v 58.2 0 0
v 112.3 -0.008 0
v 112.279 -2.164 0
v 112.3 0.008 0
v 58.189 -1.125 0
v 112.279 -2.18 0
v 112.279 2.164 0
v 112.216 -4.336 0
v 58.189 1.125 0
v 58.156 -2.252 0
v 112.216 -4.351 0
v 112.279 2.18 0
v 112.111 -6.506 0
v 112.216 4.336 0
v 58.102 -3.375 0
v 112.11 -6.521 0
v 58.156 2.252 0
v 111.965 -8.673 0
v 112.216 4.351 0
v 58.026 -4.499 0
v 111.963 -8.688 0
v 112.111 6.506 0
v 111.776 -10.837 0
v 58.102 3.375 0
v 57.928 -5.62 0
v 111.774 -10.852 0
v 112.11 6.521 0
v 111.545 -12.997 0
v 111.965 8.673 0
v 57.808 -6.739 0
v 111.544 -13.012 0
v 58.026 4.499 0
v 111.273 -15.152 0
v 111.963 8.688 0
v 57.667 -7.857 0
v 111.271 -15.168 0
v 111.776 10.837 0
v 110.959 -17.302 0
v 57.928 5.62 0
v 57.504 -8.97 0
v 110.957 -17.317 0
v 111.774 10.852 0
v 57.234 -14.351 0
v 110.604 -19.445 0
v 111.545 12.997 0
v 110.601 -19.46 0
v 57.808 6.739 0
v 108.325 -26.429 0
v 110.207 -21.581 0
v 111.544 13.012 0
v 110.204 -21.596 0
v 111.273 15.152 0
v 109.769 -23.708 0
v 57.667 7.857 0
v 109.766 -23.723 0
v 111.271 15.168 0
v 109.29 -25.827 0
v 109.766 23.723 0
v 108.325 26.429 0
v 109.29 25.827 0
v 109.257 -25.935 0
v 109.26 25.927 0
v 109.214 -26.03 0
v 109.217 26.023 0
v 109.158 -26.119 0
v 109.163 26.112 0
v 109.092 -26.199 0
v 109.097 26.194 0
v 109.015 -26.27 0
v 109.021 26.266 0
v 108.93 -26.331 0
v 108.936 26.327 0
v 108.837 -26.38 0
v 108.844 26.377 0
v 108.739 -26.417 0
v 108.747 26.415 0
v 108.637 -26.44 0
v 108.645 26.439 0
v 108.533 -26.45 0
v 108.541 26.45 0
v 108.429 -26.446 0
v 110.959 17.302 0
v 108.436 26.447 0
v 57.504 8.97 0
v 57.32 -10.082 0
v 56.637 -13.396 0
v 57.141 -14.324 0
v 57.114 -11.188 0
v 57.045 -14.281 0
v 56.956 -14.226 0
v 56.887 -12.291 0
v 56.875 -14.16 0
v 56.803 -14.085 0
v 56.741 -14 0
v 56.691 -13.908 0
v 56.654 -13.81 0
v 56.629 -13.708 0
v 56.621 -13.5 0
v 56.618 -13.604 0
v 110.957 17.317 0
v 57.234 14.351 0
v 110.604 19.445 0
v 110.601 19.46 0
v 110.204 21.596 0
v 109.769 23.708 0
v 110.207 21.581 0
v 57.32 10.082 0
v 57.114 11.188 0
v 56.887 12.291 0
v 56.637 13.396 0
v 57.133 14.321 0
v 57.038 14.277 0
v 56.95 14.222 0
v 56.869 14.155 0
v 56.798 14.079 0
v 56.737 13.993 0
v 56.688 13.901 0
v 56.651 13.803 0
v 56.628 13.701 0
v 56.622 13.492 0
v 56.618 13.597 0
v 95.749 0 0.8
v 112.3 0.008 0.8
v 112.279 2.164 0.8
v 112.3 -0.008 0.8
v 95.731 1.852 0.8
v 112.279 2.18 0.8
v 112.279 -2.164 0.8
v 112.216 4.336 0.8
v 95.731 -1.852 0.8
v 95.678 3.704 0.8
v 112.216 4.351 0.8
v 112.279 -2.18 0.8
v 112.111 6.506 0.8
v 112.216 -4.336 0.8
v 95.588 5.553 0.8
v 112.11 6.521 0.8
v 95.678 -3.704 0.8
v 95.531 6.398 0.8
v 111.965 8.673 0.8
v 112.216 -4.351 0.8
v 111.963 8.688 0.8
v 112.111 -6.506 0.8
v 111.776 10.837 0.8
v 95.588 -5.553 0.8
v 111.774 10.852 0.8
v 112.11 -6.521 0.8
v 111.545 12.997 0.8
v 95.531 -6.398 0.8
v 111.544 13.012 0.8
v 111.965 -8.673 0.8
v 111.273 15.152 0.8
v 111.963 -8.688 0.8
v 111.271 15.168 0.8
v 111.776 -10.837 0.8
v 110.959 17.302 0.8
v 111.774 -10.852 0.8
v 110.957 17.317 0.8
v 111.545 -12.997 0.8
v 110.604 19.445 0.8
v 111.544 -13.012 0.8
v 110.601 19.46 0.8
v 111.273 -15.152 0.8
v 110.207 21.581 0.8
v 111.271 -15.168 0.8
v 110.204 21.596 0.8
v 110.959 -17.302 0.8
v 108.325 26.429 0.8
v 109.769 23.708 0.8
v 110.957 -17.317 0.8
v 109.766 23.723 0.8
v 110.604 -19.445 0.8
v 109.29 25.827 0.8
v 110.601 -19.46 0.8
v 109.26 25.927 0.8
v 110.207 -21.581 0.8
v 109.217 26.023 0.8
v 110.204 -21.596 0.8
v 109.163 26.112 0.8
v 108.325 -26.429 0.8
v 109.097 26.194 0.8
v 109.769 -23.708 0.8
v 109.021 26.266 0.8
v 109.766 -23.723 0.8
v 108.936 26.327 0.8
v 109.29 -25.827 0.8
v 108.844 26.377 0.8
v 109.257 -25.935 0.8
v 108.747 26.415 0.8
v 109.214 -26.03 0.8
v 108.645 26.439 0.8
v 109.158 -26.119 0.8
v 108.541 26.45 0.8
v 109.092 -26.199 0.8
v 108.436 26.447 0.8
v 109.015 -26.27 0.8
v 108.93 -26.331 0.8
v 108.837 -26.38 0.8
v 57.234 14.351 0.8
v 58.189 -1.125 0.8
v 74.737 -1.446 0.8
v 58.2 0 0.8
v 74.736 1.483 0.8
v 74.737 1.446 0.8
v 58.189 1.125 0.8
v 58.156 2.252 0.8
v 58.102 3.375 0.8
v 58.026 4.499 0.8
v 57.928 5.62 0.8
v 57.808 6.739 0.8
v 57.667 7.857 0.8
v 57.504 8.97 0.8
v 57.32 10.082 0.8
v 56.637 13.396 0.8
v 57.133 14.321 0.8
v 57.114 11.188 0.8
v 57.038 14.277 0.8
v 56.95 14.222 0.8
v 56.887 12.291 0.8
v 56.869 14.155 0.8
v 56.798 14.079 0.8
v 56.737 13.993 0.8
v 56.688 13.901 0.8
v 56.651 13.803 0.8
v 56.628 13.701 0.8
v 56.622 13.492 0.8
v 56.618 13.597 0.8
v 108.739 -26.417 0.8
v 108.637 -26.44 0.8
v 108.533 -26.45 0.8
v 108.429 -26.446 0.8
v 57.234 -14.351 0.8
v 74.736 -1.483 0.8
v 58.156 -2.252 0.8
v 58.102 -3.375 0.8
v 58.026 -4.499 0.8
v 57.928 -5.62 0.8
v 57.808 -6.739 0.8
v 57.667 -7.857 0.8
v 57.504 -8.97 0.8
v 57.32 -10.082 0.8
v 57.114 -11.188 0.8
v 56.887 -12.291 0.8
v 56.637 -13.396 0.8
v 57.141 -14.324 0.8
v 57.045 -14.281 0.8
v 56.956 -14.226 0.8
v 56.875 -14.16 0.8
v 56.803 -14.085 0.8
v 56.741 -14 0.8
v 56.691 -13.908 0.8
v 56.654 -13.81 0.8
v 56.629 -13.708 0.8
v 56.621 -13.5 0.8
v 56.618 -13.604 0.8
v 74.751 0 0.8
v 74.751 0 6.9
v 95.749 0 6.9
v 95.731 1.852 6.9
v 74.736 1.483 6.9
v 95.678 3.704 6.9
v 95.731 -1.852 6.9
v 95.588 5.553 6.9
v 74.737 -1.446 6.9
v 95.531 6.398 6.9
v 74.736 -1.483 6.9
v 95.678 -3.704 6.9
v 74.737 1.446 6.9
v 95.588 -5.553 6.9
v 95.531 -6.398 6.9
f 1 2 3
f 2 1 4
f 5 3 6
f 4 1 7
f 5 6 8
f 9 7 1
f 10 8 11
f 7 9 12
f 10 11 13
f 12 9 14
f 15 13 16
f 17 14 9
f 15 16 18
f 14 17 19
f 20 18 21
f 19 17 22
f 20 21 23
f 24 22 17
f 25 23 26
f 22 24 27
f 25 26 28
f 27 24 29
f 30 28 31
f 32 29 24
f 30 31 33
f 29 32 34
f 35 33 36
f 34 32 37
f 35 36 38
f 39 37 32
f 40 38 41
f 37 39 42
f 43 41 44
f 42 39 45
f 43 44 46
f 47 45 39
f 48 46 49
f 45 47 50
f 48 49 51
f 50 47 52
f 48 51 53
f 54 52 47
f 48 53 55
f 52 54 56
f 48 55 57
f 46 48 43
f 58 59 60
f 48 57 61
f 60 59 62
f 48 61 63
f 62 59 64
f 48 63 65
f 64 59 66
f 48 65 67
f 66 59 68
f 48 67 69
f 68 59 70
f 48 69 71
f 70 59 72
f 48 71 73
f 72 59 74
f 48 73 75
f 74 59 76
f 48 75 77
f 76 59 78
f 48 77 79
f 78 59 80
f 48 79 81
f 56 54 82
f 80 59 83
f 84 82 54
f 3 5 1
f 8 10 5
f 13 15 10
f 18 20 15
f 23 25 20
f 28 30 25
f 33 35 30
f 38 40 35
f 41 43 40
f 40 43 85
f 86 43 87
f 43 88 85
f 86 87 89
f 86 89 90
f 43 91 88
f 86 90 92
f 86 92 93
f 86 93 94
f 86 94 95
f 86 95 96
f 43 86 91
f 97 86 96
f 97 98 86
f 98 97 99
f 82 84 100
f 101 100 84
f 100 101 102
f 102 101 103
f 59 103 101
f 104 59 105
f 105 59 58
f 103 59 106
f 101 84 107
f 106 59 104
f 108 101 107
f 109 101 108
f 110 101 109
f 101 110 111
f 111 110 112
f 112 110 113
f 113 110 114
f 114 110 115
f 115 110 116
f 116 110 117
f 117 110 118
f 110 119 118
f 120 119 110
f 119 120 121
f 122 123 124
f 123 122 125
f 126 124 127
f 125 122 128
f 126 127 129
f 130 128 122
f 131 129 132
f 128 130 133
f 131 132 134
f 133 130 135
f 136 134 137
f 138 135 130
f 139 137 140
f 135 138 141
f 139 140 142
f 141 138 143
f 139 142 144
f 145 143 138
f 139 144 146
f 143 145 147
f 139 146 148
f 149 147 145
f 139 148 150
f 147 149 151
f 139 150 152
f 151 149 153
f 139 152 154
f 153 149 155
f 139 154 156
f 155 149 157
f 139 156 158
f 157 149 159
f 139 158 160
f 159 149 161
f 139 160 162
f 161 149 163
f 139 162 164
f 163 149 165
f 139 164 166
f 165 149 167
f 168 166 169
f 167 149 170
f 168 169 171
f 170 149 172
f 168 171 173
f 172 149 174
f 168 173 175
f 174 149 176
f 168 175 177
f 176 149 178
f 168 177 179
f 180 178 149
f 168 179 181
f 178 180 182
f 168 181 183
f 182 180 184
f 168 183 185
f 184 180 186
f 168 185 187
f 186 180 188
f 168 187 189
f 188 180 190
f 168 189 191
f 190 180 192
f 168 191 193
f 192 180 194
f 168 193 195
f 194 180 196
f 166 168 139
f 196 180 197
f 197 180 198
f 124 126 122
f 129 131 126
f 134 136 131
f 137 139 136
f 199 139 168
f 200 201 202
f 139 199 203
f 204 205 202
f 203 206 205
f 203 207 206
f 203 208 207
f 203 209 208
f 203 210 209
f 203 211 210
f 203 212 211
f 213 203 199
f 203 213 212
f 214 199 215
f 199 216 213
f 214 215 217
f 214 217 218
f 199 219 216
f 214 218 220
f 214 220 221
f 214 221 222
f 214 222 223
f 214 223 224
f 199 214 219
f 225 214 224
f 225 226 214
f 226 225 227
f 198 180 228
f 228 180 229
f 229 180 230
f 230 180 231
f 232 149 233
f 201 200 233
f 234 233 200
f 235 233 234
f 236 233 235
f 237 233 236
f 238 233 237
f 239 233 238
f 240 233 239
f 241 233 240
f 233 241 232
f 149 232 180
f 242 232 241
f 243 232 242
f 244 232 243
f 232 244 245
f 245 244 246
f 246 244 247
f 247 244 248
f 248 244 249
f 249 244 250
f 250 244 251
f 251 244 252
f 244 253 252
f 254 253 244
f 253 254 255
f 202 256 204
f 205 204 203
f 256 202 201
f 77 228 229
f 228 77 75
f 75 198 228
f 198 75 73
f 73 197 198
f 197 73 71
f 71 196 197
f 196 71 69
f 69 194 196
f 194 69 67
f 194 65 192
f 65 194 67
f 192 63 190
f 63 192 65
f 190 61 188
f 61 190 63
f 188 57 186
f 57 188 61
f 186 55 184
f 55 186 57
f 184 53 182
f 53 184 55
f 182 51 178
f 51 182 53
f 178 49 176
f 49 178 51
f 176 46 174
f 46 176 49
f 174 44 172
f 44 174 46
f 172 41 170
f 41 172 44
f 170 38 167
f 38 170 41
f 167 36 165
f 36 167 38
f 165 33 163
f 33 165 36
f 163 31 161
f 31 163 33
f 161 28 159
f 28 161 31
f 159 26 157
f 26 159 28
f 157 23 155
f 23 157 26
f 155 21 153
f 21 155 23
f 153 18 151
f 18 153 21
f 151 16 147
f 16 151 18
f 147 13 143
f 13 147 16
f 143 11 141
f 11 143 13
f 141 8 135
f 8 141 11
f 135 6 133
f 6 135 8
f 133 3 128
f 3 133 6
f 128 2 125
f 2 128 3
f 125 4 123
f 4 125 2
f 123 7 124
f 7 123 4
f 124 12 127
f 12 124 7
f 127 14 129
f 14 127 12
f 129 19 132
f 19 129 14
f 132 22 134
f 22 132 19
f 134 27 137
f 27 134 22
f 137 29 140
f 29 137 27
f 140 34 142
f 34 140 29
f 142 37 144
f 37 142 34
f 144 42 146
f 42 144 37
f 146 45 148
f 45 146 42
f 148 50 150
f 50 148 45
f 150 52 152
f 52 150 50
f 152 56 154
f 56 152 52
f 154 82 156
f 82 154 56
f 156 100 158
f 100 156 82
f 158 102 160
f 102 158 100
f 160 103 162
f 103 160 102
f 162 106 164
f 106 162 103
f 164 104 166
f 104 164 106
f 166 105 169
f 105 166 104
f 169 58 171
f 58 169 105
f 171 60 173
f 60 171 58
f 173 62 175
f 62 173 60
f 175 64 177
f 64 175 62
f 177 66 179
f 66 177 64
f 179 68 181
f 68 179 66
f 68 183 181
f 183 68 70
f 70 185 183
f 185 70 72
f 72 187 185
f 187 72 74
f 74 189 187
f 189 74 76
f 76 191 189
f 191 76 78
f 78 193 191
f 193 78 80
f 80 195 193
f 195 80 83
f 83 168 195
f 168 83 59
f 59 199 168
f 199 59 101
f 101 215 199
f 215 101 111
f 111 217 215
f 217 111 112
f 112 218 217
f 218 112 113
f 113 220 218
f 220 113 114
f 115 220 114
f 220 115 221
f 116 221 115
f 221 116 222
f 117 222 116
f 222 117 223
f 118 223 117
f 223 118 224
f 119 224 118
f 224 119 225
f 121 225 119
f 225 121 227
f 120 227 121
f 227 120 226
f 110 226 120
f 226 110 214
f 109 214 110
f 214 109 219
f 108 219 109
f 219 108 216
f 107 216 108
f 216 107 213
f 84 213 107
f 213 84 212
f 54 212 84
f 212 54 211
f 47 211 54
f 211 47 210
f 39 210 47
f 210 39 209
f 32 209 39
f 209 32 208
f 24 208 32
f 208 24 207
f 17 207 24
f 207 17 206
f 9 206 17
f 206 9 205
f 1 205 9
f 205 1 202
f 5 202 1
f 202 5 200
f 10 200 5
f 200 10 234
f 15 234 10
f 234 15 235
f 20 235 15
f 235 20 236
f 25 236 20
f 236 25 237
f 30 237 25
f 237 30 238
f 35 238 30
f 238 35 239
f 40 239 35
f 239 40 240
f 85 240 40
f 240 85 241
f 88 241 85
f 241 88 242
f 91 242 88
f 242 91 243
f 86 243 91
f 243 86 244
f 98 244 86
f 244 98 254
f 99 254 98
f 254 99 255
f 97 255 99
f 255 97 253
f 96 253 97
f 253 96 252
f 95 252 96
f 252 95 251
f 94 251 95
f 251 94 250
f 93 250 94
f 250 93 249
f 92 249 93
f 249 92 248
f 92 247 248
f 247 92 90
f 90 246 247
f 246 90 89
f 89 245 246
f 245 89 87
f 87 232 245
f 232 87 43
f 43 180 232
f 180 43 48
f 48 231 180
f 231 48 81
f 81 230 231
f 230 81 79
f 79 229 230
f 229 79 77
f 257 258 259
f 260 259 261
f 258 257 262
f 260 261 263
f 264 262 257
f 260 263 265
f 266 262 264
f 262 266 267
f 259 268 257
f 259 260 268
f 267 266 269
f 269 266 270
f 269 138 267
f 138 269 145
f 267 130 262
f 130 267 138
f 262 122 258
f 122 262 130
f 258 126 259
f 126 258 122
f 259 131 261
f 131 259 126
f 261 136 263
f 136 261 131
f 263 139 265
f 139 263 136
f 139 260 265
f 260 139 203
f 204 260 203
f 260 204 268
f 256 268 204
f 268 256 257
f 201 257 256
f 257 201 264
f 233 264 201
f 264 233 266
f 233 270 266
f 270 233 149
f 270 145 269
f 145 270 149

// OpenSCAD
// Gen-CX — bobbin BASE (bottom flange + hub). Print x12, flange down. Wind 24 AWG x 262 t around
// the hub with the LID glued on (coil_lid.stl). Copper lives ONLY between the flanges (no proud winds).
include <parameters.scad>;
$fn = 48;
module sector_2d(r_in, r_out, ang) {
    polygon([
        for (a = [-ang/2 : ang/24 : ang/2]) [r_in*cos(a), r_in*sin(a)],
        for (a = [ang/2 : -ang/24 : -ang/2]) [r_out*cos(a), r_out*sin(a)]
    ]);
}
module footprint_2d() { offset(r=wall) sector_2d(coil_id_r, coil_od_r, span_deg); }
module hub_2d()       { offset(delta=-coil_core_inset) sector_2d(coil_id_r, coil_od_r, span_deg); }

union() {
    linear_extrude(flange_t) footprint_2d();
    translate([0, 0, flange_t - 0.01]) linear_extrude(former_web + 0.01) hub_2d();
}
